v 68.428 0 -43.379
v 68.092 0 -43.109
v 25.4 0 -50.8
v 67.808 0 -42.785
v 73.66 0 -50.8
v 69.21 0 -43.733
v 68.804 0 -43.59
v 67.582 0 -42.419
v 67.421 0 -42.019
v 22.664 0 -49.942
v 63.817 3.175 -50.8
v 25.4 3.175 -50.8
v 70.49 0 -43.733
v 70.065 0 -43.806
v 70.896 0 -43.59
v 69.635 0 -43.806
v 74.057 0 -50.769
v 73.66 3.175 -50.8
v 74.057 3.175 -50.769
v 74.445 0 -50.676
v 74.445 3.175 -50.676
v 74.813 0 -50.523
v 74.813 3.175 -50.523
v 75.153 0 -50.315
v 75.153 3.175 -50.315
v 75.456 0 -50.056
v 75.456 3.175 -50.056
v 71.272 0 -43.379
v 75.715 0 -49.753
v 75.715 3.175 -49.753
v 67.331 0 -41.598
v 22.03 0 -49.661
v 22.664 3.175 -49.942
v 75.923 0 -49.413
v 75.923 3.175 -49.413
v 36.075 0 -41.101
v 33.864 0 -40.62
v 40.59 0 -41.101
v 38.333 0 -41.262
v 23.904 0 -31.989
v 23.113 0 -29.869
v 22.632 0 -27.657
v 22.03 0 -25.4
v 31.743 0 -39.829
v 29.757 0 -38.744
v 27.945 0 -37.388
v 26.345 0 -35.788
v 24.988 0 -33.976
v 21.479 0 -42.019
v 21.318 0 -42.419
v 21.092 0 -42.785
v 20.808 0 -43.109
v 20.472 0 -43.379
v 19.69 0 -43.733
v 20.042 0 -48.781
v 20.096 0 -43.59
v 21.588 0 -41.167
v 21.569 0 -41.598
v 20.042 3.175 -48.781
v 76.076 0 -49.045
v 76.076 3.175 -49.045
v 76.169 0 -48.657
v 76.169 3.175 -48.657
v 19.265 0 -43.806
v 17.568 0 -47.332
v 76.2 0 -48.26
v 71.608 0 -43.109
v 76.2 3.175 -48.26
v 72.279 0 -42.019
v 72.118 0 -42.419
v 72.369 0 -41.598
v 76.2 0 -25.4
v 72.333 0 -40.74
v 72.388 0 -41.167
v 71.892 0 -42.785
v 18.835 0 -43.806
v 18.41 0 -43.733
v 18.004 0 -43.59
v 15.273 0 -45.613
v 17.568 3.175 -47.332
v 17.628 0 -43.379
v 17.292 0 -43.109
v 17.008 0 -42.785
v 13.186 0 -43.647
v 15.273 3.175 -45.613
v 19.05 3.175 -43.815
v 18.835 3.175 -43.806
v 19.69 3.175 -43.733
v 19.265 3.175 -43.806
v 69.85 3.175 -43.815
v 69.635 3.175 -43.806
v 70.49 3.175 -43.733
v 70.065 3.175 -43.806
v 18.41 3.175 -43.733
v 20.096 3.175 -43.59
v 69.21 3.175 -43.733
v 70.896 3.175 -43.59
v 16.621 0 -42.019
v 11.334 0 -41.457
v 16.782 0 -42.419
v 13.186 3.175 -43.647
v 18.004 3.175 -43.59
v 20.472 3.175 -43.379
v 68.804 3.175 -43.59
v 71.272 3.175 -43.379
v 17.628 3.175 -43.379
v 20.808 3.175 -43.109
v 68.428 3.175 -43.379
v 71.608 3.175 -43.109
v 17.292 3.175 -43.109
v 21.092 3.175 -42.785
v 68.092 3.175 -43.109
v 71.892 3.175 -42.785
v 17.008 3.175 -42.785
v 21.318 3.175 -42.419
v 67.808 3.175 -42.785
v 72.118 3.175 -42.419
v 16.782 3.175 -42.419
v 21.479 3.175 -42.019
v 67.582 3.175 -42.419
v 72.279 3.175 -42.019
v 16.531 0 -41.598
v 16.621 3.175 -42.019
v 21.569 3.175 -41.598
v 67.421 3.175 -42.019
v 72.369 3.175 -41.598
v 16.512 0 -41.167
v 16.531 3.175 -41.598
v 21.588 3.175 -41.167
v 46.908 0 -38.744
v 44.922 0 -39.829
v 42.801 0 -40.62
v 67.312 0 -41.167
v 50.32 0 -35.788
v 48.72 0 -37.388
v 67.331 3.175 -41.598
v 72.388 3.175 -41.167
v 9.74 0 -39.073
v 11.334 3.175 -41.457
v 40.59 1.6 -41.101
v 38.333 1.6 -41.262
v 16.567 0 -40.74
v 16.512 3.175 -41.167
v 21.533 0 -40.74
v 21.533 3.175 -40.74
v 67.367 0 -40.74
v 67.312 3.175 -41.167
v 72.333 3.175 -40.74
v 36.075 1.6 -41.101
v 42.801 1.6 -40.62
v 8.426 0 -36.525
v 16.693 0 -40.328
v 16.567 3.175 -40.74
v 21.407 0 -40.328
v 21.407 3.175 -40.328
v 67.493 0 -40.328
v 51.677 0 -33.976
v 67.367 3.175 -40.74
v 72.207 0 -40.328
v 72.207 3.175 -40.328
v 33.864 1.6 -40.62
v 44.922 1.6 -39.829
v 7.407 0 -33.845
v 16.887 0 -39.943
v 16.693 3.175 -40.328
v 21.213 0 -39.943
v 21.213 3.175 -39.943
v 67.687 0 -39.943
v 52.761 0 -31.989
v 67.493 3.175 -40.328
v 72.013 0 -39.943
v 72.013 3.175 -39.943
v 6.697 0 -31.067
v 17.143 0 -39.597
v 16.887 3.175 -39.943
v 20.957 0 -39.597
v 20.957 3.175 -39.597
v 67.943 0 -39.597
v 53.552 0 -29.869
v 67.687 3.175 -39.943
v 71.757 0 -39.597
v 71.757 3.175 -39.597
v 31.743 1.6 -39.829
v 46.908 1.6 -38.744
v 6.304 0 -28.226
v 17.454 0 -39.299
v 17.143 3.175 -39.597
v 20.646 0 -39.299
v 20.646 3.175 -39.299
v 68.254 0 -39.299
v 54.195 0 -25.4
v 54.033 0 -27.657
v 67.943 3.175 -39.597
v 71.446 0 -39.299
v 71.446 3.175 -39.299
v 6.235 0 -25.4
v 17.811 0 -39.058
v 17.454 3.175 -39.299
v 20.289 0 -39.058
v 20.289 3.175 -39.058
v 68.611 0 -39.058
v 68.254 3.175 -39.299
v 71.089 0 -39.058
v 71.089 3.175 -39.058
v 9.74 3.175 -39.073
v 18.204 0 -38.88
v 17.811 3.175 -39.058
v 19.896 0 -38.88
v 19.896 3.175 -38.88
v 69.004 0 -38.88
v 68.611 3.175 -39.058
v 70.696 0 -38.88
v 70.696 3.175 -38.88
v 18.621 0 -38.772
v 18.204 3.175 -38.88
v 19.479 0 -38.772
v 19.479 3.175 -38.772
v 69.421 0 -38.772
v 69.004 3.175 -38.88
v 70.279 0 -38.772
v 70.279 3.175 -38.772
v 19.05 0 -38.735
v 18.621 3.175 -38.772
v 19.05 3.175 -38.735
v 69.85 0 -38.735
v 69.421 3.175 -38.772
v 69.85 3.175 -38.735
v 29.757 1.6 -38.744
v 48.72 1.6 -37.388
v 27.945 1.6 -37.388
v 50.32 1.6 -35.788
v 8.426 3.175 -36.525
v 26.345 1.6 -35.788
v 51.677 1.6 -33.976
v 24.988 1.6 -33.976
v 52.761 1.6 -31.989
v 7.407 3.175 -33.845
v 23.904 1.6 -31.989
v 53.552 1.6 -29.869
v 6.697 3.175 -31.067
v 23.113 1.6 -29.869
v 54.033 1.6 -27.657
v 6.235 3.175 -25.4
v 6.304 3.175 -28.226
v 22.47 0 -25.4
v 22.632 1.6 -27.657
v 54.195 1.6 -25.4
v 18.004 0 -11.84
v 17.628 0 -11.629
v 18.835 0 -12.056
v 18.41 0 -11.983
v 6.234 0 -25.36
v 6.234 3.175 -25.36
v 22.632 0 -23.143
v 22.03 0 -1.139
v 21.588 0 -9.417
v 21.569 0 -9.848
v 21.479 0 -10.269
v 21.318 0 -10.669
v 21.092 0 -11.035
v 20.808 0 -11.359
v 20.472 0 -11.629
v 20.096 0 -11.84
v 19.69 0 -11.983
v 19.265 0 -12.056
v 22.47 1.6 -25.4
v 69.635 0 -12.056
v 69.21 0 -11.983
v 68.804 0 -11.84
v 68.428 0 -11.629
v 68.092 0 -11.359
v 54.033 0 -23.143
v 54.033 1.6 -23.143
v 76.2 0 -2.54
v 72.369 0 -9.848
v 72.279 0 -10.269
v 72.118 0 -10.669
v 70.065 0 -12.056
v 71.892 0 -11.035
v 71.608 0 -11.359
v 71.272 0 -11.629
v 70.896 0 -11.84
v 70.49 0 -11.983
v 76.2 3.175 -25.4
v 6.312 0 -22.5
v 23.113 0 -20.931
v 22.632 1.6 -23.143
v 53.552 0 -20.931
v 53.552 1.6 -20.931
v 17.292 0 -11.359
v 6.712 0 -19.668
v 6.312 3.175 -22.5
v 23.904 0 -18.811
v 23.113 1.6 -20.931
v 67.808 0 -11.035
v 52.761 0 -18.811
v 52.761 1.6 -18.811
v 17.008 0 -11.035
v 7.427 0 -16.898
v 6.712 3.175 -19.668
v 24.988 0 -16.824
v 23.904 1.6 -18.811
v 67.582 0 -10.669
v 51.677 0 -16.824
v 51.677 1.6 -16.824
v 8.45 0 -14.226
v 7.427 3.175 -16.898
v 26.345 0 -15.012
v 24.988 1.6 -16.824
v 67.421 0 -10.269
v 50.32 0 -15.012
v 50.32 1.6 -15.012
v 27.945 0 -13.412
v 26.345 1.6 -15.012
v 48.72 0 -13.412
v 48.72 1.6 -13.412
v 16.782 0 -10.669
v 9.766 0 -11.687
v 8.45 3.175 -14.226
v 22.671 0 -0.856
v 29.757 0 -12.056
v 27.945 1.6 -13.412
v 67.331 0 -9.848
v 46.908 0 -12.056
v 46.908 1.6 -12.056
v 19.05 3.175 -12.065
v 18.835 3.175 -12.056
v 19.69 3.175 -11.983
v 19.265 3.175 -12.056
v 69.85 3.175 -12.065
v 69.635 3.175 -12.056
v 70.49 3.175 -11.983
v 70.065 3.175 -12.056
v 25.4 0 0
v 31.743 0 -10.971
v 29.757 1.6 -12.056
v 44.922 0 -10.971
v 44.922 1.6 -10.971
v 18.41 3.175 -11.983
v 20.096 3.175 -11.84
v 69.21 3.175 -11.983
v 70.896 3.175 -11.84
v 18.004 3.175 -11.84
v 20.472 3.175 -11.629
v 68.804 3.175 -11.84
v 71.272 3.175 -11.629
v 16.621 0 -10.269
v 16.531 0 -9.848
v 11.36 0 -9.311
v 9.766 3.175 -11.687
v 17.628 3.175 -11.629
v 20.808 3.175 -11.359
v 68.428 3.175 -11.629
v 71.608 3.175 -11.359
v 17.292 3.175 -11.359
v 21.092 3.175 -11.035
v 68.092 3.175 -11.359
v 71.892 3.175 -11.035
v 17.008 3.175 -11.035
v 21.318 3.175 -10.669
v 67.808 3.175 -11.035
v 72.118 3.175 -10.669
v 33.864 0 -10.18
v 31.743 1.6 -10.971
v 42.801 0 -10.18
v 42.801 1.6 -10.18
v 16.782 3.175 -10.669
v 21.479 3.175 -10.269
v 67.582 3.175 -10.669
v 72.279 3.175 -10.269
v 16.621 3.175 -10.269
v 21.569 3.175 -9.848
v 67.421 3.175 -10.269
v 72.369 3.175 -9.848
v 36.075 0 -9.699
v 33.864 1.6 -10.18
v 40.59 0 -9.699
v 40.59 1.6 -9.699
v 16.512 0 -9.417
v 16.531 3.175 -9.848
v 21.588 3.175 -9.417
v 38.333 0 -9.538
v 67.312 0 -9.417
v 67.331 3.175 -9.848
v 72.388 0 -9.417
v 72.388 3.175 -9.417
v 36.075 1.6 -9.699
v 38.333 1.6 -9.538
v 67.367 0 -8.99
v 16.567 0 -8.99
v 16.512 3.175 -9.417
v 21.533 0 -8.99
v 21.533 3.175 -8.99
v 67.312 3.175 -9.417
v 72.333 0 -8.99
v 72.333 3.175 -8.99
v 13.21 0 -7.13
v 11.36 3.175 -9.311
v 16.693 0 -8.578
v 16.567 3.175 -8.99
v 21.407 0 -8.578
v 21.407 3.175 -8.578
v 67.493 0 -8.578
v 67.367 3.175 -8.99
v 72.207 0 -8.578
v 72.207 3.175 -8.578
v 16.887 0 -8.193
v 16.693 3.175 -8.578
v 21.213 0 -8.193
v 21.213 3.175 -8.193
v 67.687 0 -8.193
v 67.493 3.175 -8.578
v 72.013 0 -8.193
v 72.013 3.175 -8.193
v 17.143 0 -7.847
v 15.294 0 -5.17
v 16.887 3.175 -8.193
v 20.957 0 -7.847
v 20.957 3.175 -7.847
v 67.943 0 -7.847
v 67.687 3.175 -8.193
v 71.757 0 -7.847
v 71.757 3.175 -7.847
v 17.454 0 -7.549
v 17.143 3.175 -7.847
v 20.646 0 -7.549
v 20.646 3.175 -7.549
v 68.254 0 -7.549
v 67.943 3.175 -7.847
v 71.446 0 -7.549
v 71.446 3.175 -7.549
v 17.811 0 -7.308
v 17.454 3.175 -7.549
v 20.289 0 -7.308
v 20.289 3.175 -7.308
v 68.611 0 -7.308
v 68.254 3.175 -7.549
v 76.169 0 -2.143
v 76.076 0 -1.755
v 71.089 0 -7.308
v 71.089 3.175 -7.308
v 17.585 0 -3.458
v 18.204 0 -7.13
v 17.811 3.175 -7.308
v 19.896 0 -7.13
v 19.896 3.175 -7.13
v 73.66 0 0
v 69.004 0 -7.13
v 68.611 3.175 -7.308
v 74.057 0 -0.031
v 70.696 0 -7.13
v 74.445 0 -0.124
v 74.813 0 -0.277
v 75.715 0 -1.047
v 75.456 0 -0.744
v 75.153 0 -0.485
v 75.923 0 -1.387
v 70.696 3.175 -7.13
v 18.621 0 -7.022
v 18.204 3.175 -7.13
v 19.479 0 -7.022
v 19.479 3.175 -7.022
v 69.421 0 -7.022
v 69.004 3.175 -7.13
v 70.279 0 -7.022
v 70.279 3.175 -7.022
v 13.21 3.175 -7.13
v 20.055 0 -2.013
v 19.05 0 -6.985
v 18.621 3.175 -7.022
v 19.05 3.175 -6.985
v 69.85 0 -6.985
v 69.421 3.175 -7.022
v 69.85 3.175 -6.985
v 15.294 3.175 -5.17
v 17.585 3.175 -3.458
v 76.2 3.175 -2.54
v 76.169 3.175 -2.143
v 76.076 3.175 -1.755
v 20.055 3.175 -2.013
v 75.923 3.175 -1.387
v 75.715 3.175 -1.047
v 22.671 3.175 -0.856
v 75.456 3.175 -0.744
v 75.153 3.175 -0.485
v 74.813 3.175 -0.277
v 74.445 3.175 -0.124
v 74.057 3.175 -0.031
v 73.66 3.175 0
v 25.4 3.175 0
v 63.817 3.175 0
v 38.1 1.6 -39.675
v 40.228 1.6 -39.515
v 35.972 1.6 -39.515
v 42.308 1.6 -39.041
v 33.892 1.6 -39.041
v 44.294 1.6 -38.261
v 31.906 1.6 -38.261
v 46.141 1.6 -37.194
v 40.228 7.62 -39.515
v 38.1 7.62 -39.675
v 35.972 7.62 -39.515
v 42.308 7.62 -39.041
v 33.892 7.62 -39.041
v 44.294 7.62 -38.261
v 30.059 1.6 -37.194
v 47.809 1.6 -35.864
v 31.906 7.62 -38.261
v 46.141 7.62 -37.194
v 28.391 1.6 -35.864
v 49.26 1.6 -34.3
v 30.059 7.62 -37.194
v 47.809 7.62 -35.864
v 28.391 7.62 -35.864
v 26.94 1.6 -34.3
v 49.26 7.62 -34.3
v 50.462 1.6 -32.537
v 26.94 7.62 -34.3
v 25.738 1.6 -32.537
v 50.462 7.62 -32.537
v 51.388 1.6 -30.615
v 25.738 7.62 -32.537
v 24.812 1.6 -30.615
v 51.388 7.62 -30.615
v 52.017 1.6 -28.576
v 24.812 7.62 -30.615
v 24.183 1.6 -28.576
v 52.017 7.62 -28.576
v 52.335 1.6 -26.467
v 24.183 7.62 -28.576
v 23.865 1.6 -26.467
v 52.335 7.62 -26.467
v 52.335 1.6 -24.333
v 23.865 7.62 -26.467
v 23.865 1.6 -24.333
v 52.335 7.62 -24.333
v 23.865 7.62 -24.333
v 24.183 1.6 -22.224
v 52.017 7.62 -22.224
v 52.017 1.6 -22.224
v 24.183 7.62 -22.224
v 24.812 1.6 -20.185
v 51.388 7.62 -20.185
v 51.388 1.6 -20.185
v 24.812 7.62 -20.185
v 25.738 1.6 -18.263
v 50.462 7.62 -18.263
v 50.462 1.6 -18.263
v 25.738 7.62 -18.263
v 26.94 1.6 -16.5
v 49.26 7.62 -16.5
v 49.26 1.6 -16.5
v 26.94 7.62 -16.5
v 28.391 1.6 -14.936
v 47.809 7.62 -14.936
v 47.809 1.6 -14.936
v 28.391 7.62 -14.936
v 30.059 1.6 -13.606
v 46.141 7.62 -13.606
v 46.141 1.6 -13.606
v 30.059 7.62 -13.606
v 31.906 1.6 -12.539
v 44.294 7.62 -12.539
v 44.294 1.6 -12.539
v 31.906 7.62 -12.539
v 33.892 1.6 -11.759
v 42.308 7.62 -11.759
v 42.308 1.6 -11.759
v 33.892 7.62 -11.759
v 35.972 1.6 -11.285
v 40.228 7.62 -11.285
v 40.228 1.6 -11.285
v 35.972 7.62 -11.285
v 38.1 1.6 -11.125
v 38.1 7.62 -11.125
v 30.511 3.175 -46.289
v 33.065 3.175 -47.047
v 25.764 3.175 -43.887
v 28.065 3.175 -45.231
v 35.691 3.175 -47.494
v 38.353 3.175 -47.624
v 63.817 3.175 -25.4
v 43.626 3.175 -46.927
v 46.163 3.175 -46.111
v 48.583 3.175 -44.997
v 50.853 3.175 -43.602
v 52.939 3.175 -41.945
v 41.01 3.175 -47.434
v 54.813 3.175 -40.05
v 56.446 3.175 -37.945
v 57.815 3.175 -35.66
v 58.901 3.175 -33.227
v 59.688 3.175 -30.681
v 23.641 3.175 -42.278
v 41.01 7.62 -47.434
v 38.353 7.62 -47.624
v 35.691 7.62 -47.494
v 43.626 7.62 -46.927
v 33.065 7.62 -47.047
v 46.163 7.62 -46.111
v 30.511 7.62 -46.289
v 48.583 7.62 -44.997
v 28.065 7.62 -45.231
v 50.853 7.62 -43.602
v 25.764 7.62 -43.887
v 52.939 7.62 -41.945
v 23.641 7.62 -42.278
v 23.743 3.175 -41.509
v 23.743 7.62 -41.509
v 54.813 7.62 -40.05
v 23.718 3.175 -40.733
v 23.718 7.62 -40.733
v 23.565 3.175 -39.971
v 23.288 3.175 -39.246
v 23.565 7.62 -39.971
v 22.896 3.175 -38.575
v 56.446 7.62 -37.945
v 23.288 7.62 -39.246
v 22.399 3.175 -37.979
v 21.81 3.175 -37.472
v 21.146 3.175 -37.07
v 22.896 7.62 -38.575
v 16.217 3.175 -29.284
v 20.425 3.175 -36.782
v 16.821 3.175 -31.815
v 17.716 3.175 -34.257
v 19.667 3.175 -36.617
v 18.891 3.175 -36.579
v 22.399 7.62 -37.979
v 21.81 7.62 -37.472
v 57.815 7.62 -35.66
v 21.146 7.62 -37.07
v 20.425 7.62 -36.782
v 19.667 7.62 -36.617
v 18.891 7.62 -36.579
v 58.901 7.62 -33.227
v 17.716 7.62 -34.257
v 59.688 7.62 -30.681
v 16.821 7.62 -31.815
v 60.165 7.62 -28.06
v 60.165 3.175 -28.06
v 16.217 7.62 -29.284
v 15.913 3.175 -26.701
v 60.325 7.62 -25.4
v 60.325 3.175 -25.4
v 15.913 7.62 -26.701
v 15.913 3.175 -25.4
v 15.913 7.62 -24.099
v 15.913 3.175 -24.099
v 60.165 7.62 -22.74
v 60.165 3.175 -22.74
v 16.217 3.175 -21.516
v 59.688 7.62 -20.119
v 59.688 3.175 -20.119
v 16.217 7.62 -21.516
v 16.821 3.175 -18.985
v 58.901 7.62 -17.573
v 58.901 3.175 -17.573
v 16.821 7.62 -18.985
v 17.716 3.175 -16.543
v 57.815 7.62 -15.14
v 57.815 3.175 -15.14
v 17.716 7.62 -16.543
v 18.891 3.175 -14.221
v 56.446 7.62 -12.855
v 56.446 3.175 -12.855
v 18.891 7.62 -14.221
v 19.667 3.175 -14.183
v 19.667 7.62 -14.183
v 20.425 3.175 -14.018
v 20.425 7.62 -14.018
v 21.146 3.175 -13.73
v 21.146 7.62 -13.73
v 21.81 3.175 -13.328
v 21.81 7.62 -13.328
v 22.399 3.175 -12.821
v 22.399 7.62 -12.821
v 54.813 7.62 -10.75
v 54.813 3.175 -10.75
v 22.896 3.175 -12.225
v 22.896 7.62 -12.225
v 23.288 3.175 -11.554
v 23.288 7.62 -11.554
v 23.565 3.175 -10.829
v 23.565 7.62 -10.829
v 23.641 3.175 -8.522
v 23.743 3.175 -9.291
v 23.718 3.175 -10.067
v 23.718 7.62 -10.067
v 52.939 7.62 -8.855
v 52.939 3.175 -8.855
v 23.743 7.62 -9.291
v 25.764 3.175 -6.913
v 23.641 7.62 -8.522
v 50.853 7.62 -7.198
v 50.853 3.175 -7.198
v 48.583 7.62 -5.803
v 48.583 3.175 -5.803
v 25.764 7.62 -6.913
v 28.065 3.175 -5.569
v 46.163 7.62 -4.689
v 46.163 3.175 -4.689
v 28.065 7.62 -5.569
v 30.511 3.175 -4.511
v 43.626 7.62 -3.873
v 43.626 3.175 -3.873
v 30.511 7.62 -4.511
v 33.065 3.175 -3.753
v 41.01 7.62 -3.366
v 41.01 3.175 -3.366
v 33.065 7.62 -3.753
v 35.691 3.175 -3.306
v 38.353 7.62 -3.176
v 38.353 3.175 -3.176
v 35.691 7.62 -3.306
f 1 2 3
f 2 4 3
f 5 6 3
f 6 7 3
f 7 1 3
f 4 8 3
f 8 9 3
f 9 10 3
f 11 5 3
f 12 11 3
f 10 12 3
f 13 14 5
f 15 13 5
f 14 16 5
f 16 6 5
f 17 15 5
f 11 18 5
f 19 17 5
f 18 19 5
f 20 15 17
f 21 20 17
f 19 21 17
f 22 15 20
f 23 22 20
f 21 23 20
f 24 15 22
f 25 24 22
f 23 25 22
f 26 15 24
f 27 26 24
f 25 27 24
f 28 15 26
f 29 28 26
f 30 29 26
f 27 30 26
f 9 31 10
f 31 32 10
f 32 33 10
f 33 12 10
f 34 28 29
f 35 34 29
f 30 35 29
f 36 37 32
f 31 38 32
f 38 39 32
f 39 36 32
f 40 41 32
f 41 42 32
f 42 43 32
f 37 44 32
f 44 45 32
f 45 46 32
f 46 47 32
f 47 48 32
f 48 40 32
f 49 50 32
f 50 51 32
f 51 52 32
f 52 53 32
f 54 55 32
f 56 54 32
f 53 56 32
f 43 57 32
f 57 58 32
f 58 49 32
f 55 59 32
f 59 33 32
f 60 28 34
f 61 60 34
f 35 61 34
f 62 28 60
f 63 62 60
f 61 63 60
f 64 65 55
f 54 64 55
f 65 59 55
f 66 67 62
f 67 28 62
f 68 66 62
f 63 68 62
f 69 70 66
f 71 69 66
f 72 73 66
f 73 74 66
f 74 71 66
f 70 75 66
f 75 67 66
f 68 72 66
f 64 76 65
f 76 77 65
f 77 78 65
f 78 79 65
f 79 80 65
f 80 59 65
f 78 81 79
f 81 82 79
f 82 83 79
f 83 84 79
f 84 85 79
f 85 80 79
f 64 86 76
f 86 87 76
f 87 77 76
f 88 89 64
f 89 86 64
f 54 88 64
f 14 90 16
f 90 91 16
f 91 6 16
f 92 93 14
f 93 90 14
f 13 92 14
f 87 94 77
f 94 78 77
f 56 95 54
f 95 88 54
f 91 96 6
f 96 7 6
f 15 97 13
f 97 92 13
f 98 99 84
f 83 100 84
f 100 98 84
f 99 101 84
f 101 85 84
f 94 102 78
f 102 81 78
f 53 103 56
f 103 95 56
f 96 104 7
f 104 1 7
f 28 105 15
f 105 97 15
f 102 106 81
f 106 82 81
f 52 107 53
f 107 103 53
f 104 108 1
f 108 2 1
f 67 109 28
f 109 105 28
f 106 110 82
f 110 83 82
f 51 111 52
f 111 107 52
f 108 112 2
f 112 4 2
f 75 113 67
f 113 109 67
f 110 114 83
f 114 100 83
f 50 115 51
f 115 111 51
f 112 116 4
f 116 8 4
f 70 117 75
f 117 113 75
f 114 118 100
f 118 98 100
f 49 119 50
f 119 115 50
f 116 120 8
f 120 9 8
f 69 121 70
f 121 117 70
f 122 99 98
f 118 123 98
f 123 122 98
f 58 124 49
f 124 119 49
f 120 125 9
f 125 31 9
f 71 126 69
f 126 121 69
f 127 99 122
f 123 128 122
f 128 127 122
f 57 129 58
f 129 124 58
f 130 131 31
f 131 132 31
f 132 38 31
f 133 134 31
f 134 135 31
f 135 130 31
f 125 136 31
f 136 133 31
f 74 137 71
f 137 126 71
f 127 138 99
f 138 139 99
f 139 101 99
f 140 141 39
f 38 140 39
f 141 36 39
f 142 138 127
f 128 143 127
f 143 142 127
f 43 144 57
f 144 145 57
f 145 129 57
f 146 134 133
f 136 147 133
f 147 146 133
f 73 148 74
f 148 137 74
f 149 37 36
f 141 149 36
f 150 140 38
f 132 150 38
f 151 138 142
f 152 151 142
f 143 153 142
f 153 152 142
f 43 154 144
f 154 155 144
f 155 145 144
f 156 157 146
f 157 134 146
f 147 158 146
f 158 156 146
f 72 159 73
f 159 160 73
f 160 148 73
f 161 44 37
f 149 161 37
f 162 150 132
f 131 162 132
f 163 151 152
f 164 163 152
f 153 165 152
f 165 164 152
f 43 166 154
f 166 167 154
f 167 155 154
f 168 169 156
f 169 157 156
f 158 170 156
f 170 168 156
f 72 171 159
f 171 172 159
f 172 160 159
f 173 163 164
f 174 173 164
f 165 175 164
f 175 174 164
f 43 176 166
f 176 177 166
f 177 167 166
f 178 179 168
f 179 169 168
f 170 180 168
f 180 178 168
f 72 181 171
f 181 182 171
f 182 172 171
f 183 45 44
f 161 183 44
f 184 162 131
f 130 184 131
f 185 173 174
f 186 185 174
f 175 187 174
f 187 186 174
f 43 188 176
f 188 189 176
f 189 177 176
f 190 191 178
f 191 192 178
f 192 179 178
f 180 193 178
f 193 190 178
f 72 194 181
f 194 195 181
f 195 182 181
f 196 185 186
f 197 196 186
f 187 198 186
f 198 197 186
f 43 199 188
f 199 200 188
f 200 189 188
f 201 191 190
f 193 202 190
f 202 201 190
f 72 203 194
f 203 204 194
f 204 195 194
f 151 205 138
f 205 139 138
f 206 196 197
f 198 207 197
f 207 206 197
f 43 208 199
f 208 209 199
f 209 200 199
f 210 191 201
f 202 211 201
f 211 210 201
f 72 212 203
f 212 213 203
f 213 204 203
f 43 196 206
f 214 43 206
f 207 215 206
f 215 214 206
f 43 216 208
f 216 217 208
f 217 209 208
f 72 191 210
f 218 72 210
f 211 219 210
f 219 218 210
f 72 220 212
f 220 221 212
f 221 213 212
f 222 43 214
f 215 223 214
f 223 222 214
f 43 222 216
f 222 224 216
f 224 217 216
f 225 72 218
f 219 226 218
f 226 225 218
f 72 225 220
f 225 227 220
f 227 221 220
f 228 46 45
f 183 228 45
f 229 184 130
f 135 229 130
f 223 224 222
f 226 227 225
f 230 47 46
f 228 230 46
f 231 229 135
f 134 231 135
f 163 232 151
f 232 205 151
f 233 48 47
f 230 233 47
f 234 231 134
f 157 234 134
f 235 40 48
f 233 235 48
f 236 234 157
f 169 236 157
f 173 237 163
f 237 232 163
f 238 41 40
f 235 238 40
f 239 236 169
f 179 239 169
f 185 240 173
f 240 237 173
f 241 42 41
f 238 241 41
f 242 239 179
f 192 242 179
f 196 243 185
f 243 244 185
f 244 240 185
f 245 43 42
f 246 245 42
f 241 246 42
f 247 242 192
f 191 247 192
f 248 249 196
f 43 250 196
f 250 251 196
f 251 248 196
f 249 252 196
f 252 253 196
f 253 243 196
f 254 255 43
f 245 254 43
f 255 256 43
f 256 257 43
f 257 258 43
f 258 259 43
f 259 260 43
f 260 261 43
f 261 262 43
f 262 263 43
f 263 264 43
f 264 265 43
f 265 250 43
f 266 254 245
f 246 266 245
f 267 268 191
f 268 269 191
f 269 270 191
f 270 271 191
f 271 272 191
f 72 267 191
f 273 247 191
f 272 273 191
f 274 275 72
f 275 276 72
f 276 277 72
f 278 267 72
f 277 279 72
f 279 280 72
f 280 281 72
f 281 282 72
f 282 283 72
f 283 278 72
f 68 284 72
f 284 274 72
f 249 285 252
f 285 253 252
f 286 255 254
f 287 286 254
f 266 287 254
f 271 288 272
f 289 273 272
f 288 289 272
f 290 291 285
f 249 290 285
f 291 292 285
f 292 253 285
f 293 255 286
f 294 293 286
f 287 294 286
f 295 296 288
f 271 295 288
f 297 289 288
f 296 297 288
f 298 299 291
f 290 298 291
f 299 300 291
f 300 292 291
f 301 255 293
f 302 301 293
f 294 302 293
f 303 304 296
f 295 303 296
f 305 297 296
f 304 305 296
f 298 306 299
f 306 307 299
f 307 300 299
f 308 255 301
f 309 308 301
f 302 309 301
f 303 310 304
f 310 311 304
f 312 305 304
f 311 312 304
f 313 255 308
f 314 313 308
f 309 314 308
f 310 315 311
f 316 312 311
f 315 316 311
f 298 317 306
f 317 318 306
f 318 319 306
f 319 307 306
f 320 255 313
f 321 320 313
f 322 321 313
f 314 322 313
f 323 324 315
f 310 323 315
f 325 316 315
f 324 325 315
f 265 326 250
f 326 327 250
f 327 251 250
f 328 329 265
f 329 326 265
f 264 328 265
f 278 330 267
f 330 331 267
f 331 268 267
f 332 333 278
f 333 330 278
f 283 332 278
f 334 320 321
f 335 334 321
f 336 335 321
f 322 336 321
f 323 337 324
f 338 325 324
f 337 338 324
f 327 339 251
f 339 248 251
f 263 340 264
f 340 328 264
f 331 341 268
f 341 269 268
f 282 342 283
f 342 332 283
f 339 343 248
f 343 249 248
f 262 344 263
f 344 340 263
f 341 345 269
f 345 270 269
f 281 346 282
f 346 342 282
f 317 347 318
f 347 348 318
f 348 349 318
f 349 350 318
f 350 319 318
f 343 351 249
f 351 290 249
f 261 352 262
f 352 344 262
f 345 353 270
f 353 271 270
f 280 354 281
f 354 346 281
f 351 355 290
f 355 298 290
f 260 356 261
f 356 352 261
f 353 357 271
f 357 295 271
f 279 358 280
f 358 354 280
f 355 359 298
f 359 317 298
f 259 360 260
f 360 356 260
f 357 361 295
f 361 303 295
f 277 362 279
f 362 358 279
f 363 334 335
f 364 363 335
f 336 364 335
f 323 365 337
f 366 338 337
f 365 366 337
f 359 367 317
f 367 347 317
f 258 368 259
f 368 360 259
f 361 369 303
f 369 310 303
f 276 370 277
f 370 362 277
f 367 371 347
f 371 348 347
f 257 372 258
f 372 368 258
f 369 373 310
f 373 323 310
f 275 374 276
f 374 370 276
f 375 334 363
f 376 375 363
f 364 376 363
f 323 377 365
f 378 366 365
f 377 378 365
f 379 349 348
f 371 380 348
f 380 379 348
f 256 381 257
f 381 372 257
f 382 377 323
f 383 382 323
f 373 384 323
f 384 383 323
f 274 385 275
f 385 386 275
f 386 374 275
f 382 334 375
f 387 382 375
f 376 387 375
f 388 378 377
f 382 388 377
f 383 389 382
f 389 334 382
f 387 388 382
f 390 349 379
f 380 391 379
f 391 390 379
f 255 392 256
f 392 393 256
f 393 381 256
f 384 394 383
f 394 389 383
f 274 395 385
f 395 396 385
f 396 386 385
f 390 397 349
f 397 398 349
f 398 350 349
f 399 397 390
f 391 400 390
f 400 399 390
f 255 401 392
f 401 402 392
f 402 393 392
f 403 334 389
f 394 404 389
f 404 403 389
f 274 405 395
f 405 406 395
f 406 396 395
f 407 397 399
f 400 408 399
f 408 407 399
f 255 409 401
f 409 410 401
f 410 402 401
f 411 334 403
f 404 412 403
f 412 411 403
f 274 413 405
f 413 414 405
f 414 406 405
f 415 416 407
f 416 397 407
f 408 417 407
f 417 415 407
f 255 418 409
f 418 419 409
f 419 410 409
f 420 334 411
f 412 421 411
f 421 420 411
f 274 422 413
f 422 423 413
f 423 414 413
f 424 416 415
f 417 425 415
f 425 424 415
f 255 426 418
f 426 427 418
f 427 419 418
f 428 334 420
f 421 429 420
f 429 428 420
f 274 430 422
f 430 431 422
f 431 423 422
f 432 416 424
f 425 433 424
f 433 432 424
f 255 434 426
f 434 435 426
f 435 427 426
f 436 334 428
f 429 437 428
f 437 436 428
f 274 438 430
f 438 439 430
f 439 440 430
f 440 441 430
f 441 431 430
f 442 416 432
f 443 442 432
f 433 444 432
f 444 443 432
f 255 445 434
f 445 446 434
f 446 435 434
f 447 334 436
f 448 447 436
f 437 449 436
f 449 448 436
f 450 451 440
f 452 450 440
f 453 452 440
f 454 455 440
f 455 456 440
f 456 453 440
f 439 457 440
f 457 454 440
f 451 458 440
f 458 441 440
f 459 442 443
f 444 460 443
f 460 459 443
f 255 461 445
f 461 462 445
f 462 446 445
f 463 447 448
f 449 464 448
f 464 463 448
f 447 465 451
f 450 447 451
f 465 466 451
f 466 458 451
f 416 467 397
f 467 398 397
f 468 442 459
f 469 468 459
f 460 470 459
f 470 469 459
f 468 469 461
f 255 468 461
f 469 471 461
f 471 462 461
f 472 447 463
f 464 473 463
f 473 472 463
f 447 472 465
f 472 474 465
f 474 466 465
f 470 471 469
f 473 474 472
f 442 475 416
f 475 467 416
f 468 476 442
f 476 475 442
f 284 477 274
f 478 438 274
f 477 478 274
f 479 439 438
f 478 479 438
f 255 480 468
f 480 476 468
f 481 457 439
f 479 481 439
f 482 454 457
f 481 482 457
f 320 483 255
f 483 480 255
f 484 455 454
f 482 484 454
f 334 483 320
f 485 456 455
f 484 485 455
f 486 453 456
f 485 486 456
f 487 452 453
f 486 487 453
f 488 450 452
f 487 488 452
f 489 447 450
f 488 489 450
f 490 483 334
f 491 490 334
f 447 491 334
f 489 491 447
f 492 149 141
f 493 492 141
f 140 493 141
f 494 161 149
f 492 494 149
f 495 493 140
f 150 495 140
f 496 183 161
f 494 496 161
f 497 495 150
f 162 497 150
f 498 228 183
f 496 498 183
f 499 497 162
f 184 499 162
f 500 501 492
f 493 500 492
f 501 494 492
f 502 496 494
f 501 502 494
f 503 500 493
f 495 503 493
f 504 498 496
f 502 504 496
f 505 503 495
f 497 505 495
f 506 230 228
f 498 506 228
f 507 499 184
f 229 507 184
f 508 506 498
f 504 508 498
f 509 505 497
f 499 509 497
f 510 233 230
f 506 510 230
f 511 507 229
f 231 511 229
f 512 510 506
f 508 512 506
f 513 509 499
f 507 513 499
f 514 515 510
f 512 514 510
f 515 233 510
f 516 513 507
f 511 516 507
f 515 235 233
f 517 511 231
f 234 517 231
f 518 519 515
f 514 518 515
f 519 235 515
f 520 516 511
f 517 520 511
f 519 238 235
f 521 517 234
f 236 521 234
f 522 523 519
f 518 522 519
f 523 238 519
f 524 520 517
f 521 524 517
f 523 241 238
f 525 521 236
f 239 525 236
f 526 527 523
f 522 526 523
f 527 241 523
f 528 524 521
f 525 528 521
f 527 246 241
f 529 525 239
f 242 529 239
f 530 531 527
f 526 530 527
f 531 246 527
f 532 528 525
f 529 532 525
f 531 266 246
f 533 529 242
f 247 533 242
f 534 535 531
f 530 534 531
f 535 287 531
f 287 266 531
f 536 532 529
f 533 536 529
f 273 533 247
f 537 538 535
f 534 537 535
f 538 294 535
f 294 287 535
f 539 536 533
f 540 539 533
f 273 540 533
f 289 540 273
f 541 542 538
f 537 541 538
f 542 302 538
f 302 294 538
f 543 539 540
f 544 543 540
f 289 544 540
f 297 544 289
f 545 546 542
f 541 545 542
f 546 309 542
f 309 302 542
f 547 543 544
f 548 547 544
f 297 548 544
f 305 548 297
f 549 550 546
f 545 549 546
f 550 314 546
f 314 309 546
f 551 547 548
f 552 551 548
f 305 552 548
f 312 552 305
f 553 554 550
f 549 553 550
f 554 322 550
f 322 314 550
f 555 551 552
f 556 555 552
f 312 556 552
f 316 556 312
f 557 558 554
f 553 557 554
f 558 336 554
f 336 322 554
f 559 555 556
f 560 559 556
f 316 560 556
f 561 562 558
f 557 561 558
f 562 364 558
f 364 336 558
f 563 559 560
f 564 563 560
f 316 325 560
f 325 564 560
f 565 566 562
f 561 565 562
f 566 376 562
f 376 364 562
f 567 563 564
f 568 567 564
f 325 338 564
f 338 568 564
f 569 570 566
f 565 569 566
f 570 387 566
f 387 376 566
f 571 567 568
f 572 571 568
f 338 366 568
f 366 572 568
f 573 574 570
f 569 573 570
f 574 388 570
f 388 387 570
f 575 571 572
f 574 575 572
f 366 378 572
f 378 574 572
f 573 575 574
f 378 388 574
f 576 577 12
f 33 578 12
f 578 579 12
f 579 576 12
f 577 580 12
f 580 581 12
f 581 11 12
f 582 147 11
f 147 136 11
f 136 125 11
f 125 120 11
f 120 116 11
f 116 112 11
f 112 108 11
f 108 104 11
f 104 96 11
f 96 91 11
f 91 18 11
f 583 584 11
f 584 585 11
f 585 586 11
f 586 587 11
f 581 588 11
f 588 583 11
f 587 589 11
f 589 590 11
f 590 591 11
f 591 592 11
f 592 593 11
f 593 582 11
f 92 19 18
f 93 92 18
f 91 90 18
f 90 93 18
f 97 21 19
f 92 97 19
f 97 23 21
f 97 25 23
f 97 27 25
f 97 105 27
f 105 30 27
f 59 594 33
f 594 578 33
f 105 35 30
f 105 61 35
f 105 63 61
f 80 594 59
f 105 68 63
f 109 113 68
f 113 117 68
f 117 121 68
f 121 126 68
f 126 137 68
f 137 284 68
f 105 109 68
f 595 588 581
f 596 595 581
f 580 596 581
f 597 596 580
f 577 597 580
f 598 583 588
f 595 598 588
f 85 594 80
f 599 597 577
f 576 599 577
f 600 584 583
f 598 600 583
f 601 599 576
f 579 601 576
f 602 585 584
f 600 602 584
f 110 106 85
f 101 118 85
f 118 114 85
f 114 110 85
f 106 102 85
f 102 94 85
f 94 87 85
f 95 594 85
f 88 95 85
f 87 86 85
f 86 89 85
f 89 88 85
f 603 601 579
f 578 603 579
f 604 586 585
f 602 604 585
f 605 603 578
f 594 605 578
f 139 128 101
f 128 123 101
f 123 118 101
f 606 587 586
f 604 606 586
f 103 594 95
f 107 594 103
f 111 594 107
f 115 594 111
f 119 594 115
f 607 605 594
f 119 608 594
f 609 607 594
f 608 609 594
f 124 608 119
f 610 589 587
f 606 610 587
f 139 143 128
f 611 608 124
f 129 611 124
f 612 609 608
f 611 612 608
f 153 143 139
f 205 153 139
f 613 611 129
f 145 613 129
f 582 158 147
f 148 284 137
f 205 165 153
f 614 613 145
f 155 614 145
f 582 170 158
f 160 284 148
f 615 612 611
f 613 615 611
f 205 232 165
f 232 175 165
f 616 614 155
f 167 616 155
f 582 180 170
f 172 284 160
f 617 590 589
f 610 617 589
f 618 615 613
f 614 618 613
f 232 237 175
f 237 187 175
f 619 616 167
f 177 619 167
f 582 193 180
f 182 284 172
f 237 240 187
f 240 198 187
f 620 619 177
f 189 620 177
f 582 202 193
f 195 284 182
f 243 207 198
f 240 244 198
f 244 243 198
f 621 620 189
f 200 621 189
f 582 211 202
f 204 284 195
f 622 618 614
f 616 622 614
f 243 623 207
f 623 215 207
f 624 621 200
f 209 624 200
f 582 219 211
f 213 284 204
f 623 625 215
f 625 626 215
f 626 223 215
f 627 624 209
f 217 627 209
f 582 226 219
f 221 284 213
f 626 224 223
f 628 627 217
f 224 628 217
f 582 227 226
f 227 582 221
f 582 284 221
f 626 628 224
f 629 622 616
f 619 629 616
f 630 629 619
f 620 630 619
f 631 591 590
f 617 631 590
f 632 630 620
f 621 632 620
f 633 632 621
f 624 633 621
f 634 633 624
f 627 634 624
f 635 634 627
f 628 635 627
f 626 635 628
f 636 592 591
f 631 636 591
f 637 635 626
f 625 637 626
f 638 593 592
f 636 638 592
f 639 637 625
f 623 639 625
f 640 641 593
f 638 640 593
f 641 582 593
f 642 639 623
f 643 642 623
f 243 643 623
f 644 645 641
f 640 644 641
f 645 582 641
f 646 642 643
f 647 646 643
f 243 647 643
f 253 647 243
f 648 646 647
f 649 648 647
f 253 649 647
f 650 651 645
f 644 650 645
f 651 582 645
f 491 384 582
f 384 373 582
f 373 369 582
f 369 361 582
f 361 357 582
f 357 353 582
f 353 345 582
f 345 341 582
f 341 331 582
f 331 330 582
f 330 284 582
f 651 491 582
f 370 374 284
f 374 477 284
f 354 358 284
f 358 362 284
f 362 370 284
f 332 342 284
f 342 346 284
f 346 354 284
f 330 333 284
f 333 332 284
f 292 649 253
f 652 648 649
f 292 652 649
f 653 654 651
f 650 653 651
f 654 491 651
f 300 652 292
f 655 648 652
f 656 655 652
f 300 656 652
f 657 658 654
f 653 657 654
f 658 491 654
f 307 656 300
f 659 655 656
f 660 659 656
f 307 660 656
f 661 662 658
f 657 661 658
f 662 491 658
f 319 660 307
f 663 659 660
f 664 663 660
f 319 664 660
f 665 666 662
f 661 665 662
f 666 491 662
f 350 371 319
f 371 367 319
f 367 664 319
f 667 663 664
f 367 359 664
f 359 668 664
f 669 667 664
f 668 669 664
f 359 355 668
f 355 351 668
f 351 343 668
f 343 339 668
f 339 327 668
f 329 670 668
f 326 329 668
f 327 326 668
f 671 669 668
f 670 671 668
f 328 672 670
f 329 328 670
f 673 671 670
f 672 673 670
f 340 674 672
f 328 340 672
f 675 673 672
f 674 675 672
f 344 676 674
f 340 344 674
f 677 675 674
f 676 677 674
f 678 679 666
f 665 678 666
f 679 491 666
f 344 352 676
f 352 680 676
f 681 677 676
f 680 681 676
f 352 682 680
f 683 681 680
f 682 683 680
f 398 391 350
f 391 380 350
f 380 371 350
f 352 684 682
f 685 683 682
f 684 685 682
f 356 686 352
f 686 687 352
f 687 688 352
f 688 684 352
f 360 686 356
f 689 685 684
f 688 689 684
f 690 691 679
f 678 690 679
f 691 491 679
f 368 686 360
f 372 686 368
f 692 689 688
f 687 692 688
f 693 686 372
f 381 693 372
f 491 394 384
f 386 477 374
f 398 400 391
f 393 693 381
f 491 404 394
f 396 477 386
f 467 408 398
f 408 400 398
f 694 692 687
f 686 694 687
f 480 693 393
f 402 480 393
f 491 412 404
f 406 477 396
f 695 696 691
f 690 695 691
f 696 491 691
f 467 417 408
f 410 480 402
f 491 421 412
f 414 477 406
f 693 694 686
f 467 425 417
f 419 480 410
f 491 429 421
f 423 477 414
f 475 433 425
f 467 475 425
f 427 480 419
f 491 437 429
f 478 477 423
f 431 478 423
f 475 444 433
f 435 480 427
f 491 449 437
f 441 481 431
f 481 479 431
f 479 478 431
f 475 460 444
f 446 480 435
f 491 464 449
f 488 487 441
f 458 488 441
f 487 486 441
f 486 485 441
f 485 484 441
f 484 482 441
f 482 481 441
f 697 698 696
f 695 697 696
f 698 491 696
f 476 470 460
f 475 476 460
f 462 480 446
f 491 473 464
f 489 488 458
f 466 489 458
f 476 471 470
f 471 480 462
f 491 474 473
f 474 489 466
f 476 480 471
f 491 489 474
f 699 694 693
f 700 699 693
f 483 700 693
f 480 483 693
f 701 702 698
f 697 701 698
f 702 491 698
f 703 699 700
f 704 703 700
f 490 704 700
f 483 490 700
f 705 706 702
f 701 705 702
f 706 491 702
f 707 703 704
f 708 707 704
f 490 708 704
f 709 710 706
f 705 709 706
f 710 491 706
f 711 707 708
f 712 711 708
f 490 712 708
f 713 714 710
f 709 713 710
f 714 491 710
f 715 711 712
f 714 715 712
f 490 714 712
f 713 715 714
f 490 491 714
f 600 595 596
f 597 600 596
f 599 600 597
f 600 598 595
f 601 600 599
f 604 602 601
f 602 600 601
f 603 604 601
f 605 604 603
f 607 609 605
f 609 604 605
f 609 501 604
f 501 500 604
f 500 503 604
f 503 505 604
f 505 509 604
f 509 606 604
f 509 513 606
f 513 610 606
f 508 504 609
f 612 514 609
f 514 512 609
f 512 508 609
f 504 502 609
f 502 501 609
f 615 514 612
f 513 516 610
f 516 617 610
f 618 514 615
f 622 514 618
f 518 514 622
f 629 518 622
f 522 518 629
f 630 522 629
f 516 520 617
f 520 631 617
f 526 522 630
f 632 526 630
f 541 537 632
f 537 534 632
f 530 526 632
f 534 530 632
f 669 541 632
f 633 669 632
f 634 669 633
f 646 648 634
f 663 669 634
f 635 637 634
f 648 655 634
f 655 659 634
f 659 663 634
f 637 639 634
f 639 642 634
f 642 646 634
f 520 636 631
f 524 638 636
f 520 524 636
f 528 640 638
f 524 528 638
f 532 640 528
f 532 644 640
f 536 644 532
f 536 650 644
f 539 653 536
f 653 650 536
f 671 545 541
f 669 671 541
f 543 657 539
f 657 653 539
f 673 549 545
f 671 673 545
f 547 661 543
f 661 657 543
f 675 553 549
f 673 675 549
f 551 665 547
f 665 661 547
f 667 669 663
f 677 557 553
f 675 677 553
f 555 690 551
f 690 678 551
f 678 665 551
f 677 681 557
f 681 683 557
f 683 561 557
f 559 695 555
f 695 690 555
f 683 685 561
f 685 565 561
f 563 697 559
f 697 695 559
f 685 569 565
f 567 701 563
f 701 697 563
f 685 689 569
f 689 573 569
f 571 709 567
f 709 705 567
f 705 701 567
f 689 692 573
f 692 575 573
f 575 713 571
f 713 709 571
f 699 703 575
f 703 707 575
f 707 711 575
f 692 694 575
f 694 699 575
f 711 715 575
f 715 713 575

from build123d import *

# Parameters (mm, degrees)
SKETCH1_W               = 76.2
SKETCH1_H               = 50.8
SKETCH1_R               = 14.2748
BOSS_EXTRUDE1_DEPTH     = 3.175
SKETCH2_R               = 22.225
BOSS_EXTRUDE2_DEPTH     = 4.445
SKETCH3_R               = 14.2748
CUT_EXTRUDE1_DEPTH      = 92.688810795
SKETCH4_R               = 15.8623
CUT_EXTRUDE2_DEPTH      = 1.6002
FILLET2_R               = 2.54
CUT_EXTRUDE3_DEPTH      = 92.688810795
CUT_EXTRUDE3_DEPTH_BACK = 92.688810795
SKETCH5_R               = 2.54
CUT_EXTRUDE4_DEPTH      = 92.688810795
SKETCH7_R               = 4.699
CUT_EXTRUDE5_DEPTH      = 92.688810795
SKETCH9_R               = 4.699
CUT_EXTRUDE6_DEPTH      = 92.688810795


with BuildPart() as part:
    # Sketch1 → Boss-Extrude1 (new body)
    with BuildSketch(Plane(origin=(0, 0, 0), x_dir=(1, 0, 0), z_dir=(0, 1, 0))):
        with Locations((38.1, 25.4)):
            Rectangle(SKETCH1_W, SKETCH1_H)
        with Locations(Location((38.1, 25.4, 0), (0, 0, 270))):
            Circle(SKETCH1_R, mode=Mode.SUBTRACT)
    extrude(amount=BOSS_EXTRUDE1_DEPTH)

    # Sketch2 → Boss-Extrude2 (add)
    with BuildSketch(Plane(origin=(0, 3.175, 0), x_dir=(1, 0, 0), z_dir=(0, 1, 0))):
        with Locations(Location((38.1, 25.4, 0), (0, 0, 90))):
            Circle(SKETCH2_R)
    extrude(amount=BOSS_EXTRUDE2_DEPTH)

    # Sketch3 → Cut-Extrude1 (cut, through all)
    with BuildSketch(Plane.XZ.offset(-3.175)):
        with Locations(Location((38.1, -25.4, 0), (0, 0, 270))):
            Circle(SKETCH3_R)
    extrude(amount=-CUT_EXTRUDE1_DEPTH, mode=Mode.SUBTRACT)

    # Sketch4 → Cut-Extrude2 (cut)
    with BuildSketch(Plane(origin=(0, 0, 0), x_dir=(-1, 0, 0), z_dir=(0, -1, 0))):
        with Locations(Location((-38.332507849, 25.4, 0), (0, 0, 90))):
            Circle(SKETCH4_R)
    extrude(amount=-CUT_EXTRUDE2_DEPTH, mode=Mode.SUBTRACT)

    # Fillet2
    fillet2_edges = [part.edges().sort_by_distance(p)[0] for p in [
        (0, 1.5875, -50.8),
        (76.2, 1.5875, -50.8),
        (76.2, 1.5875, 0),
        (0, 1.5875, 0),
    ]]
    fillet(fillet2_edges, radius=FILLET2_R)

    # Sketch5 → Cut-Extrude3 (cut, two sides: drawn at the far end of the back side and taken through both)
    with BuildSketch(Plane(origin=(0, 3.175, 0), x_dir=(1, 0, 0), z_dir=(0, 1, 0)).offset(-CUT_EXTRUDE3_DEPTH_BACK)):
        with Locations(Location((69.85, 41.275, 0), (0, 0, 270))):
            Circle(SKETCH5_R)
        with Locations(Location((69.85, 9.525, 0), (0, 0, 270))):
            Circle(SKETCH5_R)
        with Locations(Location((19.05, 9.525, 0), (0, 0, 270))):
            Circle(SKETCH5_R)
        with Locations(Location((19.05, 41.275, 0), (0, 0, 270))):
            Circle(SKETCH5_R)
    extrude(amount=CUT_EXTRUDE3_DEPTH + CUT_EXTRUDE3_DEPTH_BACK, mode=Mode.SUBTRACT)

    # Sketch6 → Cut-Extrude4 (cut, through all)
    with BuildSketch(Plane(origin=(0, 3.175, 0), x_dir=(1, 0, 0), z_dir=(0, 1, 0))):
        with BuildLine():
            Line((0, 48.26), (0, 2.54))
            ThreePointArc((0, 2.54), (0.743948776, 0.743948776), (2.54, 0))
            Line((2.54, 0), (25.399999995, 0))
            ThreePointArc((25.399999995, 0), (11.359611147, 9.31110396), (6.233986574, 25.359691084))
            ThreePointArc((6.233986574, 25.359691084), (11.333824667, 41.457338196), (25.399999042, 50.8))
            Line((25.399999042, 50.8), (2.54, 50.8))
            ThreePointArc((2.54, 50.8), (0.743948776, 50.056051224), (0, 48.26))
        make_face()
    extrude(amount=-CUT_EXTRUDE4_DEPTH, mode=Mode.SUBTRACT)

    # Sketch7 → Cut-Extrude5 (cut, through all)
    with BuildSketch(Plane(origin=(0, 3.175, 0), x_dir=(1, 0, 0), z_dir=(0, 1, 0))):
        with Locations((19.05, 9.525)):
            Circle(SKETCH7_R)
    extrude(amount=CUT_EXTRUDE5_DEPTH, mode=Mode.SUBTRACT)

    # Sketch9 → Cut-Extrude6 (cut, through all)
    with BuildSketch(Plane(origin=(0, 3.175, 0), x_dir=(1, 0, 0), z_dir=(0, 1, 0))):
        with Locations((19.05, 41.275)):
            Circle(SKETCH9_R)
    extrude(amount=CUT_EXTRUDE6_DEPTH, mode=Mode.SUBTRACT)


solid = part.part
